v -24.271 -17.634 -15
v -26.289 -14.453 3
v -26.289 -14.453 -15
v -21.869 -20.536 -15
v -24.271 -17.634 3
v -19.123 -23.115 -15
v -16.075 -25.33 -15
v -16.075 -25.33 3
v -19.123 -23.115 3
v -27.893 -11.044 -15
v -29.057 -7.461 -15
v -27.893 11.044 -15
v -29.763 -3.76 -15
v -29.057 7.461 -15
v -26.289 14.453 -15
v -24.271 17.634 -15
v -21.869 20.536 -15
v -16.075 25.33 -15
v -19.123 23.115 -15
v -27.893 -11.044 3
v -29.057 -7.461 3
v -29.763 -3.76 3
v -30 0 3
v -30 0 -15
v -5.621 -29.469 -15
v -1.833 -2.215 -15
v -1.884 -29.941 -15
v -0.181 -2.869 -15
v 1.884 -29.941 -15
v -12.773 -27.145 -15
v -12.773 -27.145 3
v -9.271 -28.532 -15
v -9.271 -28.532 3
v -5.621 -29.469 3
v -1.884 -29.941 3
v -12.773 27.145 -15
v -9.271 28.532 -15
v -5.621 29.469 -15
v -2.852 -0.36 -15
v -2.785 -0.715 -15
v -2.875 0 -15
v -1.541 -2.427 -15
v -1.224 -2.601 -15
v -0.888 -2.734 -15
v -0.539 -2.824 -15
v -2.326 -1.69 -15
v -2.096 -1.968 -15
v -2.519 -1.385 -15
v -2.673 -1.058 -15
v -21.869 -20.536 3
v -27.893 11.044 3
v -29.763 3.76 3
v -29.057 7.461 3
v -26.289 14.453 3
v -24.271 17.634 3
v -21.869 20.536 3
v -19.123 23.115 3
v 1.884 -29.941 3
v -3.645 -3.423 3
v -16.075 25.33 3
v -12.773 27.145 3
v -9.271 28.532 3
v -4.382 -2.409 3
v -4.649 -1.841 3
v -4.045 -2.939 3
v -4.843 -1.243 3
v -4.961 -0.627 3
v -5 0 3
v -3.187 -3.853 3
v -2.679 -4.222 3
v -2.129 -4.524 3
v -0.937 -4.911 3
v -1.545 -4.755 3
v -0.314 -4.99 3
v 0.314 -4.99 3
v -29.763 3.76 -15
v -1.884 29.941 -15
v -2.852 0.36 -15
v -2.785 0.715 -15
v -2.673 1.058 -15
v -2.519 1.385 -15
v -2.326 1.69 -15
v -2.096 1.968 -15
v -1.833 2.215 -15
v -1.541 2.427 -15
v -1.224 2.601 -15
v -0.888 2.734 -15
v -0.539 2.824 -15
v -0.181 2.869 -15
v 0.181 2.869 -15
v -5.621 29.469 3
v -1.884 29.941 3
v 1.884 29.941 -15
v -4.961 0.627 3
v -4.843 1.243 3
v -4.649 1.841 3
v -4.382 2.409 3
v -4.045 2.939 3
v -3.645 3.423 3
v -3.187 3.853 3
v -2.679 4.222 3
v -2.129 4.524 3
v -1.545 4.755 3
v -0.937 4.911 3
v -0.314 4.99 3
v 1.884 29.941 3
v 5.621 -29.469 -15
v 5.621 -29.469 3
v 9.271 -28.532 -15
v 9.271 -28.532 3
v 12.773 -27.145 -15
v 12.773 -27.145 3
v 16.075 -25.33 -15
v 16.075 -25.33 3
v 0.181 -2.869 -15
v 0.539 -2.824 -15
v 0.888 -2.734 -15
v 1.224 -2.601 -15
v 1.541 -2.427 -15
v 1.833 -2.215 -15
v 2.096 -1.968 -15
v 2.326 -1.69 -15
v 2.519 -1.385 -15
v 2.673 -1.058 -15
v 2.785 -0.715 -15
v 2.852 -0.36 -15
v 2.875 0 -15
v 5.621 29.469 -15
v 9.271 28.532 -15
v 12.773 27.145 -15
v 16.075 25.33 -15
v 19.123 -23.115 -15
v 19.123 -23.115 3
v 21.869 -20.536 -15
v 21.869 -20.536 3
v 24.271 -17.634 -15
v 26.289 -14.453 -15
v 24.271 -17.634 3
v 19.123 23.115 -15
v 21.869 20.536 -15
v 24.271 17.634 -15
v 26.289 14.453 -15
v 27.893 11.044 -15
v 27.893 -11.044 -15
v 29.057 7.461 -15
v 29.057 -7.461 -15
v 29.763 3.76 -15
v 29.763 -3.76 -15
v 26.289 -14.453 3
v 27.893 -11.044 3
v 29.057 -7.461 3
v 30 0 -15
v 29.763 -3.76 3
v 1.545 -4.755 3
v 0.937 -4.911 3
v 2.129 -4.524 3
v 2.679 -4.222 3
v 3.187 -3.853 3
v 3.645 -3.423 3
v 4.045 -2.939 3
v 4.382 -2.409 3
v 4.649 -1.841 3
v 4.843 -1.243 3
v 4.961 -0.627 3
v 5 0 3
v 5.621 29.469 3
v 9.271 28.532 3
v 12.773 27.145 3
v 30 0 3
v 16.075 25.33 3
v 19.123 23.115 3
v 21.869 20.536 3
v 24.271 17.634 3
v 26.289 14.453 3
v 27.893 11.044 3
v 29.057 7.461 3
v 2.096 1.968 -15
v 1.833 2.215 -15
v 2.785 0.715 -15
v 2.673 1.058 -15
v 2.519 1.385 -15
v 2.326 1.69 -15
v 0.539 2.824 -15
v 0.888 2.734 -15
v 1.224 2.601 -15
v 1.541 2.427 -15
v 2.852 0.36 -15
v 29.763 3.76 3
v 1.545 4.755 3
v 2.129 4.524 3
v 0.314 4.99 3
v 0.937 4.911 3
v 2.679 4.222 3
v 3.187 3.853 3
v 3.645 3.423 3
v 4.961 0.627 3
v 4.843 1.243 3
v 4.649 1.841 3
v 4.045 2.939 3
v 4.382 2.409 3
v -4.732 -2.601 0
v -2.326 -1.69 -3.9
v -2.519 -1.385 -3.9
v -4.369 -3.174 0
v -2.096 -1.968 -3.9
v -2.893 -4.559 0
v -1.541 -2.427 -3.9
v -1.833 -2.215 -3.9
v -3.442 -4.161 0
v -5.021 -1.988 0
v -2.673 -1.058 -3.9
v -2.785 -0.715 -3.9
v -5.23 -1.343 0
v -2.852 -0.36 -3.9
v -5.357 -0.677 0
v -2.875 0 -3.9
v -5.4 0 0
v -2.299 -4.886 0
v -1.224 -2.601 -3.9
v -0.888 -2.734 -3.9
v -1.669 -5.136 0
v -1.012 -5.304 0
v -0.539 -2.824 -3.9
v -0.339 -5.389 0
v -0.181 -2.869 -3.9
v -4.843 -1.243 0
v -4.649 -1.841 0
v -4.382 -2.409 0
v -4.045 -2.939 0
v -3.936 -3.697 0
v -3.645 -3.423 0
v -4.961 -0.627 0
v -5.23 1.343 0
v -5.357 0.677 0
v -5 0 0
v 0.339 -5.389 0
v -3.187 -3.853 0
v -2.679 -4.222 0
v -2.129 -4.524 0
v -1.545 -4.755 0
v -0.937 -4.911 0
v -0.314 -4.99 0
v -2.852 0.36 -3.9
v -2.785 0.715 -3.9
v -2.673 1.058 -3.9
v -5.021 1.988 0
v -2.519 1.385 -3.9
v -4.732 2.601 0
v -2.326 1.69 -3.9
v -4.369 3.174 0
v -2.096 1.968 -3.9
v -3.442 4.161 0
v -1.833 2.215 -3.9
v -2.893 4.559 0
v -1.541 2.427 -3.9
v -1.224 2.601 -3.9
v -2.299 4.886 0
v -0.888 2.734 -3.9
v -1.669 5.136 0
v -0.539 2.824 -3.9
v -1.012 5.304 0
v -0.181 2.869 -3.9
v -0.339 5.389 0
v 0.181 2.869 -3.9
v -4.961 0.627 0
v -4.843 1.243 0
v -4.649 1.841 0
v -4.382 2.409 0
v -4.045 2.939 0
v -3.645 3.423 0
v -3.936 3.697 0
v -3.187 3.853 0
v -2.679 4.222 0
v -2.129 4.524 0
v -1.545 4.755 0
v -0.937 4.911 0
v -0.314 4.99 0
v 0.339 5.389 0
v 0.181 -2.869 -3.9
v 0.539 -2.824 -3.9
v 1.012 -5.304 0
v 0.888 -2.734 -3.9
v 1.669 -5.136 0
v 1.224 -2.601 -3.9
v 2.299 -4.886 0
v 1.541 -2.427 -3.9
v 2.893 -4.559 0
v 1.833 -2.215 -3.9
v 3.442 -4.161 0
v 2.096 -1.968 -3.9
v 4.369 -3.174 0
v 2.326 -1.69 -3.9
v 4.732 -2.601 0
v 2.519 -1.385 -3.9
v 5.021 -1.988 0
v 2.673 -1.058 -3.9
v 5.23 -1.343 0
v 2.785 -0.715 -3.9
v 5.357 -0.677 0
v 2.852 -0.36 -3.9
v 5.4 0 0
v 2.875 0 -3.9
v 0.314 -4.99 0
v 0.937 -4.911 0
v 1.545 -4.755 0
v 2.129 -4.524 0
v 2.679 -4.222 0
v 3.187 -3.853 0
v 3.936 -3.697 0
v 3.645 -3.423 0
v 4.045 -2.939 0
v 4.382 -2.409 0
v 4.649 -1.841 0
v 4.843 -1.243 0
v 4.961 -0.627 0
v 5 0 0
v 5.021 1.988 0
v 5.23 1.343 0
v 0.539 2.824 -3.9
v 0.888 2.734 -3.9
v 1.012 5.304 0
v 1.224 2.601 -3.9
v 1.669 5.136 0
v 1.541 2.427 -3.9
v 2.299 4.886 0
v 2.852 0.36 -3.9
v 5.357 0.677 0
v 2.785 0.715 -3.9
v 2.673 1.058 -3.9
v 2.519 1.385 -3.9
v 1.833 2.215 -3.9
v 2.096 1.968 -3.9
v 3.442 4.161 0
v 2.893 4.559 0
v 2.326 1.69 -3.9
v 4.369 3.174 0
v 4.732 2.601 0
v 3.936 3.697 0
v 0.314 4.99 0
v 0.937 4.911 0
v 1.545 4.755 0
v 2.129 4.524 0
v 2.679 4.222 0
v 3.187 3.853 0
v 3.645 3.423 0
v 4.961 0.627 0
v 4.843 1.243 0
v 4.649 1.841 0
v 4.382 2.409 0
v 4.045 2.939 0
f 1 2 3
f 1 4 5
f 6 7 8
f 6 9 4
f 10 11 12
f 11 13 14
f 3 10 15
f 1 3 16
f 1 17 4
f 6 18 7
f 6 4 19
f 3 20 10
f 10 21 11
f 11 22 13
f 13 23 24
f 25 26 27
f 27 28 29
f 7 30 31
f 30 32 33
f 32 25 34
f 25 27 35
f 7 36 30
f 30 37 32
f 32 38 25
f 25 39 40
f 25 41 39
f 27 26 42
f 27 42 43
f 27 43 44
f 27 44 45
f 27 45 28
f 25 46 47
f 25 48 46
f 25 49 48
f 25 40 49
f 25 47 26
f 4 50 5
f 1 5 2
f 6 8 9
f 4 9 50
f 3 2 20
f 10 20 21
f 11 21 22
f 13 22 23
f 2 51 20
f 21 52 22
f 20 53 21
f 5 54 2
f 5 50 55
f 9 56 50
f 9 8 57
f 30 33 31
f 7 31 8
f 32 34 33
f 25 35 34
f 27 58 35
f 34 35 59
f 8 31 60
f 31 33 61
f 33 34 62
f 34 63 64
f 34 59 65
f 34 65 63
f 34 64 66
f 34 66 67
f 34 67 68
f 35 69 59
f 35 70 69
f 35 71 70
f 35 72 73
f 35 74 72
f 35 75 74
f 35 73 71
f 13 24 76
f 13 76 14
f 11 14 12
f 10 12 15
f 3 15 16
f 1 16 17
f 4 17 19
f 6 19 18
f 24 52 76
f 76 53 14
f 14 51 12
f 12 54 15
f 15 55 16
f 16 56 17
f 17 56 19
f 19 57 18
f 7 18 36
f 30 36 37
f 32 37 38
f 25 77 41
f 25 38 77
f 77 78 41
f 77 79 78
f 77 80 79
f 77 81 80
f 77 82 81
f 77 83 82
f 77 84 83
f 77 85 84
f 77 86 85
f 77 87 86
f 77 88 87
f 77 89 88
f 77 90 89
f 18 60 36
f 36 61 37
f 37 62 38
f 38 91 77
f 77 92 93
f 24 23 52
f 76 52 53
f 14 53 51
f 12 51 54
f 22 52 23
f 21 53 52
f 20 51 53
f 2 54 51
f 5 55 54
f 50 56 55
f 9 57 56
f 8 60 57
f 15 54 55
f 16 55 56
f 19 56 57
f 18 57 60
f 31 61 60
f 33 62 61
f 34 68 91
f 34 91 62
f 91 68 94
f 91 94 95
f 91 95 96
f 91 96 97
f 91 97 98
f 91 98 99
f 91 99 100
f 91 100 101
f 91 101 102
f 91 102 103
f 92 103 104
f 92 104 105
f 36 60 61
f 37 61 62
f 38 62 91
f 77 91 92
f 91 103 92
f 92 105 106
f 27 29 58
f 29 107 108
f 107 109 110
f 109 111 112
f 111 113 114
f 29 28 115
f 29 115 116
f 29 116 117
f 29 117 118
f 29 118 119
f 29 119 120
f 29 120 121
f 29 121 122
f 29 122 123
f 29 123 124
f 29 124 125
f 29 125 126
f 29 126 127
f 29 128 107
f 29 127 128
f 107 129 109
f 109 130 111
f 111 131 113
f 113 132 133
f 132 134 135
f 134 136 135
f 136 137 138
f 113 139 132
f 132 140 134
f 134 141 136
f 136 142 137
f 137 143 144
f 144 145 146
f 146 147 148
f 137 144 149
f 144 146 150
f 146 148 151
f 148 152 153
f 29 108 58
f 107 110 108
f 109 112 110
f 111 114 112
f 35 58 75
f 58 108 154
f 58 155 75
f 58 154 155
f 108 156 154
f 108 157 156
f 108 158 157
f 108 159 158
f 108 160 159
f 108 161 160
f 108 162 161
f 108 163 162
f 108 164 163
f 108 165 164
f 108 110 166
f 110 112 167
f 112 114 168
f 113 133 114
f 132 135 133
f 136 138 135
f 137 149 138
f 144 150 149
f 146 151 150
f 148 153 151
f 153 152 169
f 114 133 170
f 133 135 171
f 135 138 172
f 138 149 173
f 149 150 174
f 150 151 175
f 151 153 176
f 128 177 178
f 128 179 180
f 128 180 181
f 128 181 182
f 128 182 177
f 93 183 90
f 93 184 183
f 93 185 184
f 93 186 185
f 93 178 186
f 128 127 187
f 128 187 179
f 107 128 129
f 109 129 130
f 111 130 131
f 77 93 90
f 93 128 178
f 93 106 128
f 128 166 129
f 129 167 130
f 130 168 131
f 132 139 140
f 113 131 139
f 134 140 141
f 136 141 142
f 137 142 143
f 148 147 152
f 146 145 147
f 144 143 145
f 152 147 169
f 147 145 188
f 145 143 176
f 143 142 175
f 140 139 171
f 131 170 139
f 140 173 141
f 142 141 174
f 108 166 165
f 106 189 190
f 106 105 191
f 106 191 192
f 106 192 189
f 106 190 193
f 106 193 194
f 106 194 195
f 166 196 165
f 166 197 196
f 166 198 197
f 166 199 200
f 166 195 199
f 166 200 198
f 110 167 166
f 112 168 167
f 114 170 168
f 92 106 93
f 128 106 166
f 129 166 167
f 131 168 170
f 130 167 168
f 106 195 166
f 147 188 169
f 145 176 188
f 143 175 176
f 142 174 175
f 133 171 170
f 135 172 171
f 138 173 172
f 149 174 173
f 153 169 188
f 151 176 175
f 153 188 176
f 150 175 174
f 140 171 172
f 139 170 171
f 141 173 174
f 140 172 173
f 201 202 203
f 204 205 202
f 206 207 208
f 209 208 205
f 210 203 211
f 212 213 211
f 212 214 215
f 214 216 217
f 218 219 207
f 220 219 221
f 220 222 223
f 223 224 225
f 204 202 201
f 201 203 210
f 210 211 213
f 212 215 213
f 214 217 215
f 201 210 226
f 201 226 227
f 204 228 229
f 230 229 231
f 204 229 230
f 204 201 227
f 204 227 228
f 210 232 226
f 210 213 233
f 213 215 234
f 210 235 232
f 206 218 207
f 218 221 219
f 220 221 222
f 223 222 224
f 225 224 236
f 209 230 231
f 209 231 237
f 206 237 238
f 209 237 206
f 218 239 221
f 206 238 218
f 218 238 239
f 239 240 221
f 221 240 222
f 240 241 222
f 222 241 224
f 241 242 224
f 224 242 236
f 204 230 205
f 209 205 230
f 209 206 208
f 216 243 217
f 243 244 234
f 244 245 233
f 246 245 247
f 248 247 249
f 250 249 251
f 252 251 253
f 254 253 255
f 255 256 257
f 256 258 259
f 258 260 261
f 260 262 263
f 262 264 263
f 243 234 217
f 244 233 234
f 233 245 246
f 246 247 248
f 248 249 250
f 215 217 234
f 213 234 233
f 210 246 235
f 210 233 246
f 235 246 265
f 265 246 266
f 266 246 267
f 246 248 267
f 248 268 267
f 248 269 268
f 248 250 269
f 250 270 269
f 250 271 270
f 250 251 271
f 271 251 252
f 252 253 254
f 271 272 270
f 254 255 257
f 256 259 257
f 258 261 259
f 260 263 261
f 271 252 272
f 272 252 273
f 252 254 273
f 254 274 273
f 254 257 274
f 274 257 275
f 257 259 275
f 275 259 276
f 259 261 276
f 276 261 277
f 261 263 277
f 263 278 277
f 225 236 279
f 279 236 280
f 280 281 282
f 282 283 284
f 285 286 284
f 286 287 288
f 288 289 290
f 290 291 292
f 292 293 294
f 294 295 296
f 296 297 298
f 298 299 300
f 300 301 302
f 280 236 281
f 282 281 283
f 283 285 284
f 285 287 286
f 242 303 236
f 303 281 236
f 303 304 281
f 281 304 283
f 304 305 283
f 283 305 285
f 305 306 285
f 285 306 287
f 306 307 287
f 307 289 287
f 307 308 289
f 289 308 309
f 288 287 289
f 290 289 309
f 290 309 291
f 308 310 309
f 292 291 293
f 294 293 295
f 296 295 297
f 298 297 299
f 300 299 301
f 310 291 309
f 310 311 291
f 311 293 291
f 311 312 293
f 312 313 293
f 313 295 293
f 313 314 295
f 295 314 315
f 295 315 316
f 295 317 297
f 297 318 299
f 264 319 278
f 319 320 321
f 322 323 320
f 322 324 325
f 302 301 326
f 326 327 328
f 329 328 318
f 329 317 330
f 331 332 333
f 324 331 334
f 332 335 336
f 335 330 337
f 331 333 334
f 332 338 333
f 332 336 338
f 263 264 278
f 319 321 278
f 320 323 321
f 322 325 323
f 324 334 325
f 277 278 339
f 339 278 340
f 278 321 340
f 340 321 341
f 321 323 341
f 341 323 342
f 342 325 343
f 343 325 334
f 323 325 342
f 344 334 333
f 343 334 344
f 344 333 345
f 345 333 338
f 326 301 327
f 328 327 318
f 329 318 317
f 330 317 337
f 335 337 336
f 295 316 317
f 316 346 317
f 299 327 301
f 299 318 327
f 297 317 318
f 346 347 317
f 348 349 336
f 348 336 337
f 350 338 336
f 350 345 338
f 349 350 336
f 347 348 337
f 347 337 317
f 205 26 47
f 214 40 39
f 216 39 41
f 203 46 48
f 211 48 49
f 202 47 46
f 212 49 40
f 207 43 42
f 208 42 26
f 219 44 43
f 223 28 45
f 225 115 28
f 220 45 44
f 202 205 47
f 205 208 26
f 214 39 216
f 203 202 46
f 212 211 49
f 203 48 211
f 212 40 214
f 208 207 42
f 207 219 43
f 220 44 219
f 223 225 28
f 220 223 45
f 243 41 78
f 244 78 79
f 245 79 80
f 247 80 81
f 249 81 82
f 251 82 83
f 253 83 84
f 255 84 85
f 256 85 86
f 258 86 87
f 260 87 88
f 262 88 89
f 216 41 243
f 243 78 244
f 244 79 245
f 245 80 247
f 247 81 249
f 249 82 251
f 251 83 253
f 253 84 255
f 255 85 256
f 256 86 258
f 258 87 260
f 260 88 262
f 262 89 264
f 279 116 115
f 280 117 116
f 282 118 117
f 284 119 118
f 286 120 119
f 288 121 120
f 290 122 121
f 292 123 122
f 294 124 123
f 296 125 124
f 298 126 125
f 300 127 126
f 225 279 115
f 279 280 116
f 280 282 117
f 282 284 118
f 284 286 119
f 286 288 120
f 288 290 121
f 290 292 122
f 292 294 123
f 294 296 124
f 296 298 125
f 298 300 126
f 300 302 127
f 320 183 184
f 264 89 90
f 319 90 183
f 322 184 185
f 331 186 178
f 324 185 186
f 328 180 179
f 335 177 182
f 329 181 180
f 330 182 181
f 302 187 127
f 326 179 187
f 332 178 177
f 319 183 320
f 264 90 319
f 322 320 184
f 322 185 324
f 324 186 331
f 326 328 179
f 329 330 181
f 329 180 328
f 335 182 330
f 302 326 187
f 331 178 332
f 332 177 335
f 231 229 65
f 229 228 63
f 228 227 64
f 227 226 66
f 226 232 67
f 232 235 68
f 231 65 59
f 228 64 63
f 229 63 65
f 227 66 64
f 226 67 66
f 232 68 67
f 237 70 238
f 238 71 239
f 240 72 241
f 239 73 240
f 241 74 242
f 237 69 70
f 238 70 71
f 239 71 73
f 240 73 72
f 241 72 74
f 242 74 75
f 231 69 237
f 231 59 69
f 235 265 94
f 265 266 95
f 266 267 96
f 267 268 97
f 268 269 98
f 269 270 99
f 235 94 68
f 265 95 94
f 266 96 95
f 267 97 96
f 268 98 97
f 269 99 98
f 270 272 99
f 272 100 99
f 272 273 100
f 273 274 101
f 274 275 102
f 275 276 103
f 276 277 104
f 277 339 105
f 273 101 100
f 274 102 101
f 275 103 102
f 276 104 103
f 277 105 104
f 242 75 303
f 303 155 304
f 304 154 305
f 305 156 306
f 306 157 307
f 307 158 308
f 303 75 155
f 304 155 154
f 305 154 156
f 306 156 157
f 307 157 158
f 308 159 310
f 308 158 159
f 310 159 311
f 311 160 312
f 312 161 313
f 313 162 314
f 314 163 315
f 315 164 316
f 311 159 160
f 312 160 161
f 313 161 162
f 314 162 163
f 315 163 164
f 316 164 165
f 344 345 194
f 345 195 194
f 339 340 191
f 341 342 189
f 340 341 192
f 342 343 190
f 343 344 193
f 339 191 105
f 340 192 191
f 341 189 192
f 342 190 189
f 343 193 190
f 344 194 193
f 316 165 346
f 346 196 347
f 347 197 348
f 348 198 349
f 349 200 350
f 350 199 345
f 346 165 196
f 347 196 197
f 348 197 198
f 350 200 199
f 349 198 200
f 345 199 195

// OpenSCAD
$fn = 50;


difference() {
	union() {
		translate(v = [0, 0, -15.0000000000]) {
			cylinder(h = 18, r = 30.0000000000);
		}
		#translate(v = [0, 0, -18.0000000000]) {
			cylinder(h = 18, r = 2.8750000000);
		}
	}
	union() {
		translate(v = [0, 0, 0]) {
			rotate(a = [0, 0, 0]) {
				difference() {
					union() {
						translate(v = [0, 0, -18.0000000000]) {
							cylinder(h = 18, r = 2.6000000000);
						}
						translate(v = [0, 0, -3.9000000000]) {
							cylinder(h = 3.9000000000, r1 = 2.8750000000, r2 = 5.4000000000);
						}
						translate(v = [0, 0, -18.0000000000]) {
							cylinder(h = 18, r = 2.8750000000);
						}
						translate(v = [0, 0, -18.0000000000]) {
							cylinder(h = 18, r = 2.6000000000);
						}
					}
					union();
				}
			}
		}
		#cylinder(h = 3, r = 5.0000000000);
	}
}
